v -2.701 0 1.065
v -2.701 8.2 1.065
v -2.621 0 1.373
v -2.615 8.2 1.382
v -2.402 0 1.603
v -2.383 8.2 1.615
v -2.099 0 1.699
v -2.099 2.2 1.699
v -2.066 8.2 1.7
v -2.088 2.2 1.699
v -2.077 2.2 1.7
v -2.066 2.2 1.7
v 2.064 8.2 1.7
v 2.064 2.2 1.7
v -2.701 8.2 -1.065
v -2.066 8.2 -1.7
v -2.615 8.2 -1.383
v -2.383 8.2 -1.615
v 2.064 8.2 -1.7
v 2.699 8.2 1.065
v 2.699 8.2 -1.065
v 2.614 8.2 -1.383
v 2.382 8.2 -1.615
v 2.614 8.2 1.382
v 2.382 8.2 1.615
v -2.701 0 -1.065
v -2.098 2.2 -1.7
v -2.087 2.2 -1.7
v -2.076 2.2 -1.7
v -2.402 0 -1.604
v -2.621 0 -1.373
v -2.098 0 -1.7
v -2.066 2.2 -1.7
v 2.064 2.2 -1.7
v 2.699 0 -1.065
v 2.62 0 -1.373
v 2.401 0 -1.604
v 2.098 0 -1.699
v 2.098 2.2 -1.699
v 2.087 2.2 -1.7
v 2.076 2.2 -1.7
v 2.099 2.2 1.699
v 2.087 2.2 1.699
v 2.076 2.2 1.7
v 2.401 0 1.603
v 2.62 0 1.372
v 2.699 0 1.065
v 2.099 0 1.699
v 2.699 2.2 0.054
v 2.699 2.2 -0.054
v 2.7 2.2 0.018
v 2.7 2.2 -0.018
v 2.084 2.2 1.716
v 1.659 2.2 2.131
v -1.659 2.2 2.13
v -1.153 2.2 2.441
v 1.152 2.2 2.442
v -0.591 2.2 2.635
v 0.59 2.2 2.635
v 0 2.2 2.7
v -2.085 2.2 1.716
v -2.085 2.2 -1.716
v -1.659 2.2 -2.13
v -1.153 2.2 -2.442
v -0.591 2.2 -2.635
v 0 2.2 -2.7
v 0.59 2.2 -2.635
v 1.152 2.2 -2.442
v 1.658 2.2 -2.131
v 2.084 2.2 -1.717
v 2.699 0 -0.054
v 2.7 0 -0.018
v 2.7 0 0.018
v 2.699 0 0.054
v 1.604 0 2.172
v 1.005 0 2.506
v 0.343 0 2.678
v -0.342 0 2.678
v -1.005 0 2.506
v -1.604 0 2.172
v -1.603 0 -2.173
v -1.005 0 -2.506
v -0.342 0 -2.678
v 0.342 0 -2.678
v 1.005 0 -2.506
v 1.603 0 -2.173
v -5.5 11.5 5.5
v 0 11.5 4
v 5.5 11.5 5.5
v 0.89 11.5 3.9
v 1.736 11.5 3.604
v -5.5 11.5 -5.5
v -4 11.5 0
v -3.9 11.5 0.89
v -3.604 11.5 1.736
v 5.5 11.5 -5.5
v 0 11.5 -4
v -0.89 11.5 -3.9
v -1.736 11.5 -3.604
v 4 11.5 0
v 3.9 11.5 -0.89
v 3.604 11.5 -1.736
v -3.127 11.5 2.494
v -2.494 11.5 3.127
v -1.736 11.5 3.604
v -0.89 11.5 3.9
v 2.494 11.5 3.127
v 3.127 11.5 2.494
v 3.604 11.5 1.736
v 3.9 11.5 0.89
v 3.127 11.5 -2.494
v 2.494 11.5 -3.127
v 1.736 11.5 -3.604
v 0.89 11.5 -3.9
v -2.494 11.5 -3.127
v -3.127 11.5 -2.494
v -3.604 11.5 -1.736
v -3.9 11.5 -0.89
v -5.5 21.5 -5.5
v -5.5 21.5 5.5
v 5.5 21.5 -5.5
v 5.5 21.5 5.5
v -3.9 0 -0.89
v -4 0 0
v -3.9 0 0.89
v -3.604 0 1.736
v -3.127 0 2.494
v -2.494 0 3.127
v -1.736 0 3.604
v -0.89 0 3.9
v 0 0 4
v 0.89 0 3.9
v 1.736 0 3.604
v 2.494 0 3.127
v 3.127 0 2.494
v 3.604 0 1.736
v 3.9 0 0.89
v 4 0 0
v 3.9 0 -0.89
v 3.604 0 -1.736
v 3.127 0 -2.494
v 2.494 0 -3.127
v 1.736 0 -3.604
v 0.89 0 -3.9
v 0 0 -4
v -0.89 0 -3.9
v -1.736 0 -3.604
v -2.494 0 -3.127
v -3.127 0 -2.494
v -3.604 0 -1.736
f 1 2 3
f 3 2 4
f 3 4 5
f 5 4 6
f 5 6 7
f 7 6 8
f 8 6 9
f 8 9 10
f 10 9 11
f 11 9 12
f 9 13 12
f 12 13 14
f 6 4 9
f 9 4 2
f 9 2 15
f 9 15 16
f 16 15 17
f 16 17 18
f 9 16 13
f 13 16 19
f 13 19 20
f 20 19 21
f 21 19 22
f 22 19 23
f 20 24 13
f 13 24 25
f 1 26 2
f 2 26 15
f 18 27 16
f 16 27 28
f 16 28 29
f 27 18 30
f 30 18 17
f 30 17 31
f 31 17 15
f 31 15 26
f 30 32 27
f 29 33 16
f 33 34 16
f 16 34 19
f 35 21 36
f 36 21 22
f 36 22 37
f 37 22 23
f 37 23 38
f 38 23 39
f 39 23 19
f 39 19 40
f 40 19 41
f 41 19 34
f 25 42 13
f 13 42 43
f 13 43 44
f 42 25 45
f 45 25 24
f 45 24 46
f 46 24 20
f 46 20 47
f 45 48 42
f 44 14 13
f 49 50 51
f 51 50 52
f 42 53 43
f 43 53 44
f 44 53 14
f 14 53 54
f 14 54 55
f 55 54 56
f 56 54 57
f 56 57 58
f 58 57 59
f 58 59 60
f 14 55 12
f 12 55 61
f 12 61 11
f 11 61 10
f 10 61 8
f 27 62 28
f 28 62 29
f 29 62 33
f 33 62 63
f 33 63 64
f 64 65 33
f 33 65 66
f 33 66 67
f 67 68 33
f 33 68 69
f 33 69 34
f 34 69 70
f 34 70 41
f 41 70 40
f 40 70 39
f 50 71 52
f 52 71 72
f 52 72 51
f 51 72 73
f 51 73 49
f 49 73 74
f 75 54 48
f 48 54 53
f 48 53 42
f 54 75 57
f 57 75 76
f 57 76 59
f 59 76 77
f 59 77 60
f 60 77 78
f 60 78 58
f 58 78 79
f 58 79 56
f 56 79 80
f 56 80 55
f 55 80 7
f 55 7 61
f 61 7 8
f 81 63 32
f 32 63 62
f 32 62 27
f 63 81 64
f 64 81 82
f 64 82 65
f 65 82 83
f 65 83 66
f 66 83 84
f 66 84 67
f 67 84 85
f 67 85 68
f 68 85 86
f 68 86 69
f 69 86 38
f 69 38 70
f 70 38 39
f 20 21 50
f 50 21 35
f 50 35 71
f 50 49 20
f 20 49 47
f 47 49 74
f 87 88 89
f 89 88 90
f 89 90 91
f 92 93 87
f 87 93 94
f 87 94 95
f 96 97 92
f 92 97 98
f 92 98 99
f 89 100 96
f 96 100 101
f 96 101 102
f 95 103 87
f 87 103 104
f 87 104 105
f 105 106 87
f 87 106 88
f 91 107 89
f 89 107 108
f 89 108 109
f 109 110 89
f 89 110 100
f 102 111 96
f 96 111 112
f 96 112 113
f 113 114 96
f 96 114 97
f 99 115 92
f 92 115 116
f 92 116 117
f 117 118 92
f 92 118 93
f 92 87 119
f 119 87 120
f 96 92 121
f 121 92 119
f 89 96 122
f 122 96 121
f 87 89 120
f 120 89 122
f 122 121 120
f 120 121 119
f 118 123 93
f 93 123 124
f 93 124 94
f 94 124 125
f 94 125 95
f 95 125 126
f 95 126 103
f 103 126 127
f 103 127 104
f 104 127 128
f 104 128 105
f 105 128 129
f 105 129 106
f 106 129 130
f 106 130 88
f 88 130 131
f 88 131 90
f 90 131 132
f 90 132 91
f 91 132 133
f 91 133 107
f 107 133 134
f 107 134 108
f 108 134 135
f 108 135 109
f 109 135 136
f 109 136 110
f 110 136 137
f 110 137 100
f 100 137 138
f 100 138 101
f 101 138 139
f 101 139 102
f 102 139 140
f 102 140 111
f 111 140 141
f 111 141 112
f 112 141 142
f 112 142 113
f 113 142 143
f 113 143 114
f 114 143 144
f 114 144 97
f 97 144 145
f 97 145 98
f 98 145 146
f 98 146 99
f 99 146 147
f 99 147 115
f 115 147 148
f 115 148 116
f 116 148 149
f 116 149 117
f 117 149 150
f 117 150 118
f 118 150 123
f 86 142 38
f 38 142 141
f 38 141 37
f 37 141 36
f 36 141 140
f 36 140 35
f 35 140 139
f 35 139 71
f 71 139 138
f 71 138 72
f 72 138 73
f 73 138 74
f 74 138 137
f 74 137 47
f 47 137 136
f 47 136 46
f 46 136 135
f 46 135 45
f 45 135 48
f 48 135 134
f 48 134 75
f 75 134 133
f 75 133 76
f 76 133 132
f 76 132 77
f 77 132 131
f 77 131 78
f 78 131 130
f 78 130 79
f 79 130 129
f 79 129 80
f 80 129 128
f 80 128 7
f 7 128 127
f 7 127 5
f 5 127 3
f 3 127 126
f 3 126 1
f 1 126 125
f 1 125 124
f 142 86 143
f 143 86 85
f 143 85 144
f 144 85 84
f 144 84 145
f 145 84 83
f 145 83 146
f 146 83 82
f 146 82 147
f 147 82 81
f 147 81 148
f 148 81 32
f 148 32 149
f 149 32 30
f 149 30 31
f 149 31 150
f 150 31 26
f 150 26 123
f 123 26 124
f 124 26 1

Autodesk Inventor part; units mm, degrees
ref_plane "YZ Plane" through (0, 0, 0) normal (1, 0, 0) x (0, 1, 0)
ref_plane "XZ Plane" through (0, 0, 0) normal (0, 1, 0) x (-1, 0, 0)
ref_plane "XY Plane" through (0, 0, 0) normal (0, 0, 1) x (1, 0, 0)
sketch "Sketch1" plane through (0, 0, 0) normal (0, 1, 0) x (-1, 0, 0)
  line L0 (14.5, -14.5) -> (-14.5, -14.5)
  line L1 (-14.5, -14.5) -> (-14.5, 14.5)
  line L2 (-14.5, 14.5) -> (14.5, 14.5)
  line L3 (14.5, 14.5) -> (14.5, -14.5)
  circle A0 centre (0, 0) radius 4
  dimension "d11" = 29
  dimension "d14" = 29
  dimension "d31" = 8
extrude "Extrusion1" add sketch "Sketch1" along normal blind 11.5 contours A0
sketch "Sketch2" plane through (0, 11.5, 0) normal (0, 1, 0) x (1, 0, 0)
  line L0 (-5.5, 5.5) -> (5.5, 5.5)
  line L1 (5.5, 5.5) -> (5.5, -5.5)
  line L2 (5.5, -5.5) -> (-5.5, -5.5)
  line L3 (-5.5, -5.5) -> (-5.5, 5.5)
  line L4 (14.5, 14.5) -> (-14.5, 14.5) projected
  line L5 (14.5, -14.5) -> (14.5, 14.5) projected
  line L6 (-14.5, -14.5) -> (14.5, -14.5) projected
  line L7 (-14.5, 14.5) -> (-14.5, -14.5) projected
  point P0 (0, 0)
  dimension "d15" = 9
  dimension "d16" = 9
  dimension "d17" = 9
  dimension "d18" = 9
  dimension "d32" = 11
extrude "Extrusion2" add sketch "Sketch2" along normal blind 10 contours L0 L1 L2 L3
sketch "Sketch3" plane through (0, 0, 0) normal (0, -1, 0) x (1, 0, 0)
  line L0 (-0.0005, -0.0003) -> (-0.0005, -1.7003)
  line L1 (-0.0005, -1.7003) -> (2.6995, -1.7003)
  line L2 (2.6995, -1.7003) -> (2.6995, 1.6997)
  line L3 (2.6995, 1.6997) -> (-2.7005, 1.6997)
  line L4 (-2.7005, 1.6997) -> (-2.7005, -1.7003)
  line L5 (-2.7005, -1.7003) -> (-0.0005, -1.7003)
  dimension "d42" = 1.7
  dimension "d43" = 2.7
  dimension "d44" = 3.4
  dimension "d45" = 5.4
extrude "Extrusion3" cut sketch "Sketch3" against normal blind 8.2
sketch "Sketch5" plane through (0, 0, 0) normal (0, -1, 0) x (1, 0, 0)
  circle A0 centre (0, 0) radius 2.7
  dimension "d35" = 5.4
extrude "Extrusion4" cut sketch "Sketch5" against normal blind 2.2
fillet "Fillet1" radius 0.635 4 edges at (2.6995, 4.1, 1.6997) (2.6995, 4.1, -1.7003) (-2.7005, 4.1, -1.7003) (-2.7005, 4.1, 1.6997)
equation "\"d14\" = d11"
equation "\"d16\" = d15"
equation "\"d17\" = d15"
equation "\"d18\" = d15"
equation "\"d42\" = 0.5 * d44"
properties part number "Motor_fit_check"
